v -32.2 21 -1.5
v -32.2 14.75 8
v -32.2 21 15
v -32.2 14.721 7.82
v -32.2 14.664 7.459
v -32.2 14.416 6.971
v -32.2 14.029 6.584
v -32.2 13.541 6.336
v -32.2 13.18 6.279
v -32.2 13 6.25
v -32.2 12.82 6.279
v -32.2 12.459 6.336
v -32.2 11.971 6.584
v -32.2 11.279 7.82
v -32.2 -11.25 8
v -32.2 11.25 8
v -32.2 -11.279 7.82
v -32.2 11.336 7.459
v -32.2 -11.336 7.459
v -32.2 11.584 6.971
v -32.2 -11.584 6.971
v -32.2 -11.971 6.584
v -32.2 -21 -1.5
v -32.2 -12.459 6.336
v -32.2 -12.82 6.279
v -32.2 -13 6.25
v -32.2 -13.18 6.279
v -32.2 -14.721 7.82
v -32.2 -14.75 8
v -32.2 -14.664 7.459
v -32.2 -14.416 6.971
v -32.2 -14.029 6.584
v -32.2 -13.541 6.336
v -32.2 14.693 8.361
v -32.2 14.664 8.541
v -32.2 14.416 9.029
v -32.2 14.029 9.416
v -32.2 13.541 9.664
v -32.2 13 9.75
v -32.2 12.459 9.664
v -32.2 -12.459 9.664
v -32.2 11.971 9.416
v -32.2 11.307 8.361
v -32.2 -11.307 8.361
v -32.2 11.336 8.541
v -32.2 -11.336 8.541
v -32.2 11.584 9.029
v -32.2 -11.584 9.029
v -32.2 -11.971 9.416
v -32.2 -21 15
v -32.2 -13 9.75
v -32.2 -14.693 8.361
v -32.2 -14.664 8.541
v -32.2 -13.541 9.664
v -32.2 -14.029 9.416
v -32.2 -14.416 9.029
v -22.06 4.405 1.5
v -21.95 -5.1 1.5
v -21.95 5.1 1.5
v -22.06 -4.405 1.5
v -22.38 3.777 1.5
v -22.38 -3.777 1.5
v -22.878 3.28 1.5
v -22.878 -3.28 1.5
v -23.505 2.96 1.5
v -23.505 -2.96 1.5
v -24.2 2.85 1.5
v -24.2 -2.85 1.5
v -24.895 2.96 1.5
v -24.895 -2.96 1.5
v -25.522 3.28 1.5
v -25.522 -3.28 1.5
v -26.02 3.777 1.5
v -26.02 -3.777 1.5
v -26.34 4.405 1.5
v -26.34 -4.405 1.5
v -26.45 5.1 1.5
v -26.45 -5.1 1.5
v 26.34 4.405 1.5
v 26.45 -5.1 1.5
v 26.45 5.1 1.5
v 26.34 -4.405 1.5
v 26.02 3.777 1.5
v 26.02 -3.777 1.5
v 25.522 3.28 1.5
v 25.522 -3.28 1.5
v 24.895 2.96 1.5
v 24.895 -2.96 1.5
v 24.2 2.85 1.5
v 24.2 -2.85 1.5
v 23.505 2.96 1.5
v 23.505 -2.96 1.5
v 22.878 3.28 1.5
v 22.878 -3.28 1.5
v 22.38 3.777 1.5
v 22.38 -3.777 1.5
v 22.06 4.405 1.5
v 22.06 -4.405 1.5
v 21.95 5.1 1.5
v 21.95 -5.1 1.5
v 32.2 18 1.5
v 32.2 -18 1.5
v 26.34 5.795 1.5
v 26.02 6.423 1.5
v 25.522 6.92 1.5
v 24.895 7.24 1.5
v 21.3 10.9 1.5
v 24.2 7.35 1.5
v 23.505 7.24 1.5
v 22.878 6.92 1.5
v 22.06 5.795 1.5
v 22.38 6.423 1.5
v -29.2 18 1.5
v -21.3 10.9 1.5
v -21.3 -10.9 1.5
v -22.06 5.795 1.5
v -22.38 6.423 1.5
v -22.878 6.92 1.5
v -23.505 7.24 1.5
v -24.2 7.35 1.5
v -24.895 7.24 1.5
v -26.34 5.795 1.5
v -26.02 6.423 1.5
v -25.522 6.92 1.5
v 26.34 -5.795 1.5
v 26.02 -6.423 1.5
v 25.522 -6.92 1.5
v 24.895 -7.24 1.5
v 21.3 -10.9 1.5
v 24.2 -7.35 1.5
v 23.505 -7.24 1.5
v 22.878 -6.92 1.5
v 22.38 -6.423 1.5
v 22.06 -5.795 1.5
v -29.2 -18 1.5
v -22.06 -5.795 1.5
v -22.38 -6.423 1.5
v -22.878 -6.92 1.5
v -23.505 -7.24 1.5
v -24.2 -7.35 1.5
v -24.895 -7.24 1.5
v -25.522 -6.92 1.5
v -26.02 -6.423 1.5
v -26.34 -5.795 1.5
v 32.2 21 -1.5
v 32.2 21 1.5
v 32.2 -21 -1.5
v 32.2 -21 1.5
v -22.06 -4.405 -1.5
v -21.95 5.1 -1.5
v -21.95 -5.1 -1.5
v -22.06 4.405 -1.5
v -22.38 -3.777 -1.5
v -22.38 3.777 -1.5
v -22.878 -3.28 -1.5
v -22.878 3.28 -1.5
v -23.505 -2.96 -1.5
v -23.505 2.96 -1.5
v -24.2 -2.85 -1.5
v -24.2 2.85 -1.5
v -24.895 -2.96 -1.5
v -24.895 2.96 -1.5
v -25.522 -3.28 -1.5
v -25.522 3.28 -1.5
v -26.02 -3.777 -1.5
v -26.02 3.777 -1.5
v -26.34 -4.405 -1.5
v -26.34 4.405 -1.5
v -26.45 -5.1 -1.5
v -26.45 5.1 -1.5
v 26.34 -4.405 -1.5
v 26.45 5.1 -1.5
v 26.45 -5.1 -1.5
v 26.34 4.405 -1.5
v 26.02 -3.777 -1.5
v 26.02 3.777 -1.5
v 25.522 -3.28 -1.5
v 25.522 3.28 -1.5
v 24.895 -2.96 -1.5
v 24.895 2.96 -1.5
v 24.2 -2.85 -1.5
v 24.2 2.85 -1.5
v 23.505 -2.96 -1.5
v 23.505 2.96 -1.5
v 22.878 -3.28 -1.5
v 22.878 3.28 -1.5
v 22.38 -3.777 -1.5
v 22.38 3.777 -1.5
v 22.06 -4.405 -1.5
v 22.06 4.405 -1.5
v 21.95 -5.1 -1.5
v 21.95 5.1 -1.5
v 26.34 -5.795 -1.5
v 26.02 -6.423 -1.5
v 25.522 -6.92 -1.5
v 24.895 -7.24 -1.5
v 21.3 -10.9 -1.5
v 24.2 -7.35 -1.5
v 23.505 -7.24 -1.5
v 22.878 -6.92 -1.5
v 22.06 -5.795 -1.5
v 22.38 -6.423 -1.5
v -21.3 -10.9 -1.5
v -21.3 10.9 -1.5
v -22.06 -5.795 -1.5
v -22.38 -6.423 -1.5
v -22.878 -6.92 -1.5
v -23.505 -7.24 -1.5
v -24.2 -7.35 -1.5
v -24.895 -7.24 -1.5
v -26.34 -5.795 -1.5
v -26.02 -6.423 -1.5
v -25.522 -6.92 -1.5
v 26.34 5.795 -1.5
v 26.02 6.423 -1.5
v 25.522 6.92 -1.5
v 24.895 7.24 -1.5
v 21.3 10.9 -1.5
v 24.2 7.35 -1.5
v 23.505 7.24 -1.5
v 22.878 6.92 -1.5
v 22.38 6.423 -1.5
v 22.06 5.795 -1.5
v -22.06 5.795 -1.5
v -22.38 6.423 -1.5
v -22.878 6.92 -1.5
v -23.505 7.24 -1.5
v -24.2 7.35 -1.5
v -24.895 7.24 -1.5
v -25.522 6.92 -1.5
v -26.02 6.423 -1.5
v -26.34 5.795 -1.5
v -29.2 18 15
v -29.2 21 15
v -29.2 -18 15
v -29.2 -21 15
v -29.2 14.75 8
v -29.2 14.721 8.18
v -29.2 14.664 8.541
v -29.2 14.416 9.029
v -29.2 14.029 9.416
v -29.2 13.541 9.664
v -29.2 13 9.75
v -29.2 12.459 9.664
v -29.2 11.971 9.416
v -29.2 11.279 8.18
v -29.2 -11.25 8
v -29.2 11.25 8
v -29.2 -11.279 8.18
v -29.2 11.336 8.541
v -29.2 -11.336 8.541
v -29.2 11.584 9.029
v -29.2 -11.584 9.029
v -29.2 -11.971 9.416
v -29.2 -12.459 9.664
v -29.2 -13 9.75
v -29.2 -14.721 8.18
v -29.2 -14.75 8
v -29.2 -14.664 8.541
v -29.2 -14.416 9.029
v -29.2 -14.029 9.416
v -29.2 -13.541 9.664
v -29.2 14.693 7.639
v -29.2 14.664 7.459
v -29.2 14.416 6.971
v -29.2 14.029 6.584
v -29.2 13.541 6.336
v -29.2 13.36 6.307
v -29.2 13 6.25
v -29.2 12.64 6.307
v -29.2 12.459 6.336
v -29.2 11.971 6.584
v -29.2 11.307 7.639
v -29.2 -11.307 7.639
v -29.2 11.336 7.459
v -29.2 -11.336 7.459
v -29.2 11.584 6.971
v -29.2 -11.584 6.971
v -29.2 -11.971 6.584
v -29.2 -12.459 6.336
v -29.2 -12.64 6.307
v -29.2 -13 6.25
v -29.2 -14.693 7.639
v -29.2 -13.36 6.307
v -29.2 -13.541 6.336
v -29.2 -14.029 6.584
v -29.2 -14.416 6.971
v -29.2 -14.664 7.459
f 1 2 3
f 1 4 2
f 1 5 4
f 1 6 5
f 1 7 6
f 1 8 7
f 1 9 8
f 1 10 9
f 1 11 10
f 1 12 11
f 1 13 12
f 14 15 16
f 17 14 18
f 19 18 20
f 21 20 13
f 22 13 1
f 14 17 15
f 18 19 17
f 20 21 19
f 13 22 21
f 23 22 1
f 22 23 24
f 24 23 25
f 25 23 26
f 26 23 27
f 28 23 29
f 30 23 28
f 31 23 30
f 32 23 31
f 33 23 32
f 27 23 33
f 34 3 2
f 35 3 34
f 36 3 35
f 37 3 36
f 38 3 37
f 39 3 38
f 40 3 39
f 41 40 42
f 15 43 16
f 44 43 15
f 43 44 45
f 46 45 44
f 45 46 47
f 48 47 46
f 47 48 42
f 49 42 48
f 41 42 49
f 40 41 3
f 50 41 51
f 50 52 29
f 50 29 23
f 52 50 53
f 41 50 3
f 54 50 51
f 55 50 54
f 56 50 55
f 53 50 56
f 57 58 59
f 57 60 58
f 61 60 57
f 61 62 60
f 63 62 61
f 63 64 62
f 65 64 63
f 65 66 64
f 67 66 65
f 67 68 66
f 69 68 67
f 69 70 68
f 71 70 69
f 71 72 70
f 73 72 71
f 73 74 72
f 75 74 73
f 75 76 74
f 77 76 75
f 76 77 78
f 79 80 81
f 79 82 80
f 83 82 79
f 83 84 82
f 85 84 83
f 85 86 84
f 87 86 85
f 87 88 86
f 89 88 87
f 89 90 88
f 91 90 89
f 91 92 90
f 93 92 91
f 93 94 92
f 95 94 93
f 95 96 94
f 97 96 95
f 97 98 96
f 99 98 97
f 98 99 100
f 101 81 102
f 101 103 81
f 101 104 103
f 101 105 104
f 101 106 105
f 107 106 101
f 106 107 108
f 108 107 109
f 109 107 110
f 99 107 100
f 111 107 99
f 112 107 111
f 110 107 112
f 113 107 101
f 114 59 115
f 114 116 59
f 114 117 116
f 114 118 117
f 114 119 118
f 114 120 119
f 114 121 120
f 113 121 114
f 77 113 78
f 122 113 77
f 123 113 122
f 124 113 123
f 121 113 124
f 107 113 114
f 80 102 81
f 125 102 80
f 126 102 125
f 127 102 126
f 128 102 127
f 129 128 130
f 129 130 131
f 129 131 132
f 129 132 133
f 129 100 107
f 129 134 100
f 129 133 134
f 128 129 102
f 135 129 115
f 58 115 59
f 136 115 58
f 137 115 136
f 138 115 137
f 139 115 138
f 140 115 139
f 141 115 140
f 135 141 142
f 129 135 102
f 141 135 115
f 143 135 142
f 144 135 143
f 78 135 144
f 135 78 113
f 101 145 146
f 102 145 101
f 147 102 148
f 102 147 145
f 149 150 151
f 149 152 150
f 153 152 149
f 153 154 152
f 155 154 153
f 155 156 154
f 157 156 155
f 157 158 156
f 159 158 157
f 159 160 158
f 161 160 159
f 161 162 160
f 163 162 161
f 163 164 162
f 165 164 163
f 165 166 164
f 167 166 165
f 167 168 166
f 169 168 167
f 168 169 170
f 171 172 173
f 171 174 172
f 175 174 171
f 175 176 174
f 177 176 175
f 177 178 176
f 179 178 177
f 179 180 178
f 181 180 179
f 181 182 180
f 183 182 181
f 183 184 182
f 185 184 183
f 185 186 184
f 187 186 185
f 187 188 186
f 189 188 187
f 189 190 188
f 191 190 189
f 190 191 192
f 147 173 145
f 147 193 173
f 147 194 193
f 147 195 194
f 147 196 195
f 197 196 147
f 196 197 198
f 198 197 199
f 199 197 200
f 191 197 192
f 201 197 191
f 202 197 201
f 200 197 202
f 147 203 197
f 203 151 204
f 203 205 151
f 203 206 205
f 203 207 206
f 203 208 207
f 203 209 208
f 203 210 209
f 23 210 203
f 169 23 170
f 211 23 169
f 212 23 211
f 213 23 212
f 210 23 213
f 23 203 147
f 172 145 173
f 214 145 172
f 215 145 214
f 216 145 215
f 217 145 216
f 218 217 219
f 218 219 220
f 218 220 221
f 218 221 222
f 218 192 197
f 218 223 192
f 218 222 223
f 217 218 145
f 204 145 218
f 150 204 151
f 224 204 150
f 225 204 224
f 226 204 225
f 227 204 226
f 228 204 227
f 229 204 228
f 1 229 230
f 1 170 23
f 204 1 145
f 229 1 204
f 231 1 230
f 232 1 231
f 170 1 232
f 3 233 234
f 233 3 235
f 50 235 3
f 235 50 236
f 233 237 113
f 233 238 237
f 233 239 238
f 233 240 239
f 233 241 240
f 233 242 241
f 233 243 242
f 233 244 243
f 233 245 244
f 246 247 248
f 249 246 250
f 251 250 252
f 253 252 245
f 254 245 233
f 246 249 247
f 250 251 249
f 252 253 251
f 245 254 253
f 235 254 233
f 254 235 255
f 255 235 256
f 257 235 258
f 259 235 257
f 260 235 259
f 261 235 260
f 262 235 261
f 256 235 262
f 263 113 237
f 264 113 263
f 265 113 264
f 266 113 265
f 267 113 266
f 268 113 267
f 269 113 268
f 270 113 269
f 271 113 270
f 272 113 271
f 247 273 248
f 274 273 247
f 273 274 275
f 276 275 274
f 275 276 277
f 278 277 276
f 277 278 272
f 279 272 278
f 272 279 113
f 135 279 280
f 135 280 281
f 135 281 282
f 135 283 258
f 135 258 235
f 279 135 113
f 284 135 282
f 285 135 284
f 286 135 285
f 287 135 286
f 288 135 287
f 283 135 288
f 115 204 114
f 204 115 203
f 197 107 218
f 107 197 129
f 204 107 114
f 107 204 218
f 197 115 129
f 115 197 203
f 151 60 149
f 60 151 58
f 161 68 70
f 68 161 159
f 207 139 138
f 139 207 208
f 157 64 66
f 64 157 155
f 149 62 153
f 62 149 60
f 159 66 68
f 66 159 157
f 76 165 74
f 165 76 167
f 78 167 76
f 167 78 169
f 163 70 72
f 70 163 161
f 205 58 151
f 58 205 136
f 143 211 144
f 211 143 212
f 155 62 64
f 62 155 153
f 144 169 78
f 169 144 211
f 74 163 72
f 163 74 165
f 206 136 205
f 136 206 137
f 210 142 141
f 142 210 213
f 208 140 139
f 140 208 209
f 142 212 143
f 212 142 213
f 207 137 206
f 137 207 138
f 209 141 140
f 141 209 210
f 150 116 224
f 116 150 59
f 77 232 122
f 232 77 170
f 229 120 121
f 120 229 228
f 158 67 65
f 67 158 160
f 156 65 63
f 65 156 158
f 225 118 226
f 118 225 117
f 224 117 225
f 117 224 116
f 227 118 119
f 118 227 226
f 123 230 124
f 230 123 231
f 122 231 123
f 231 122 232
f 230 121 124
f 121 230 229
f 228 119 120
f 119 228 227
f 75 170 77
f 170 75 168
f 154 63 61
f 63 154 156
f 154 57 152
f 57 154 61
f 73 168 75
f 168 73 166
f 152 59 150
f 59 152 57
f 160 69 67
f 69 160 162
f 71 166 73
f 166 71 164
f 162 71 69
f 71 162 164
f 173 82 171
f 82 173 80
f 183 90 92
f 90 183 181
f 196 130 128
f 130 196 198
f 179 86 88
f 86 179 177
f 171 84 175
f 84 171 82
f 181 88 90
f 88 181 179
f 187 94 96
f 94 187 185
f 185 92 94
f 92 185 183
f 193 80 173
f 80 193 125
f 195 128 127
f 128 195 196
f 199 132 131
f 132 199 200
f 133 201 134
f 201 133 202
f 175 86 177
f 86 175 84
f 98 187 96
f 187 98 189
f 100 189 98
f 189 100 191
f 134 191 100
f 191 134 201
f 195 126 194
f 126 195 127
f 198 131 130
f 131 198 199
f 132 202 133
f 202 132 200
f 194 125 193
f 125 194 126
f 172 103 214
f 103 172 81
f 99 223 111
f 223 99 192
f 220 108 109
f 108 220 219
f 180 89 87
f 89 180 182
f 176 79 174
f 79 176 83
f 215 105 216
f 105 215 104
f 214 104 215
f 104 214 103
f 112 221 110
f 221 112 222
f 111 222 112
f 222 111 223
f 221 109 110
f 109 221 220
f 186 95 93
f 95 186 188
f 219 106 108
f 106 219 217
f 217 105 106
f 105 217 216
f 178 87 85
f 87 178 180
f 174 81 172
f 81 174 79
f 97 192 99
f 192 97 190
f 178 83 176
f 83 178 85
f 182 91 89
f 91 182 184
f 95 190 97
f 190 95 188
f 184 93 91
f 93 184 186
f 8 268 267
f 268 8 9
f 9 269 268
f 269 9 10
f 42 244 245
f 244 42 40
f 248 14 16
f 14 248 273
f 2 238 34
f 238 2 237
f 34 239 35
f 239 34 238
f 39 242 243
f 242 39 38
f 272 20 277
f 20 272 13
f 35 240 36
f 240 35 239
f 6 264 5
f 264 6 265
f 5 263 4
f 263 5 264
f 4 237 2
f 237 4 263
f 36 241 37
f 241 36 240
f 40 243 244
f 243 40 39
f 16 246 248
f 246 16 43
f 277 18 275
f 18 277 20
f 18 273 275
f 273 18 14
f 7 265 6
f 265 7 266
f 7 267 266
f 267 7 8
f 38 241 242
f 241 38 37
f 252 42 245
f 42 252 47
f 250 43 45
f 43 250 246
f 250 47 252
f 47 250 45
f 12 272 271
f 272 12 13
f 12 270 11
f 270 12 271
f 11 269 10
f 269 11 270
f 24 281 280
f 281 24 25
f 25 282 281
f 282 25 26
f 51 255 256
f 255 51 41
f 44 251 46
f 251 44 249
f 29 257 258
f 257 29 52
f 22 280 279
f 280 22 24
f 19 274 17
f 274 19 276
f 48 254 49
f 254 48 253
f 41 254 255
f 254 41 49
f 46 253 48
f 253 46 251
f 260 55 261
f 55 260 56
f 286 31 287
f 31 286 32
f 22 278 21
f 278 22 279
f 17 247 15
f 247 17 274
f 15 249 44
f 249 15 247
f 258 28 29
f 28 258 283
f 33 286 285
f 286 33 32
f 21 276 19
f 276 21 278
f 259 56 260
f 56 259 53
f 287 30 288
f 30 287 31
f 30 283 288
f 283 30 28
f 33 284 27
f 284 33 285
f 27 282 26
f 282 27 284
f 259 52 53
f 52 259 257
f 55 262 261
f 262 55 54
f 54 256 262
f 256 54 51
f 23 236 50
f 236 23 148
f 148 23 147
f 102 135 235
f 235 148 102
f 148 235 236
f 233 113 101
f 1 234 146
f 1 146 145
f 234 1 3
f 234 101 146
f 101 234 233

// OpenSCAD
diam_M3=3.5;
servo_t=19.8;
servo_w1=40.6;
servo_w2=48.4;
servo_w3=53.4;
servo_d=17.3;
servo_a=20;
servo_fixingscrew_diam=4.5;
servo_fixingscrew_distance=10.2;
thickness=3;
bigger=5;
width=36+thickness;

difference()
{
union(){    
cube([servo_w3+thickness*2+bigger,width,thickness],center=true);
translate([-(servo_w3+thickness*2+bigger)/2,-width/2,0])cube([thickness,width,15]);    
}
cube([servo_w1+2,servo_t+2,thickness*2],center=true);    
//servo screw holes
translate([-servo_w2/2,-servo_fixingscrew_distance/2,0])cylinder(d=servo_fixingscrew_diam,h=100,$fn=20,center=true);
translate([-servo_w2/2,+servo_fixingscrew_distance/2,0])cylinder(d=servo_fixingscrew_diam,h=100,$fn=20,center=true);    
translate([servo_w2/2,-servo_fixingscrew_distance/2,0])cylinder(d=servo_fixingscrew_diam,h=100,$fn=20,center=true);
translate([servo_w2/2,+servo_fixingscrew_distance/2,0])cylinder(d=servo_fixingscrew_diam,h=100,$fn=20,center=true);        
//holes for arm attachment
translate([-(servo_w3+thickness+bigger)/2,8+5,8])rotate([0,90,0]) cylinder(r=diam_M3/2,h=thickness*3,center=true,$fn=20);    
translate([-(servo_w3+thickness+bigger)/2,-8-5,8])rotate([0,90,0]) cylinder(r=diam_M3/2,h=thickness*3,center=true,$fn=20);  
}

translate([0,-width/2,0])hull() {
translate([-(servo_w3+thickness*2+bigger)/2,-thickness/2,0])cube([thickness,thickness,15]); 
cube([servo_w3+thickness*2+bigger,thickness,thickness],center=true);    
}
translate([0,width/2,0])hull() {
translate([-(servo_w3+thickness*2+bigger)/2,-thickness/2,0])cube([thickness,thickness,15]); 
cube([servo_w3+thickness*2+bigger,thickness,thickness],center=true);    
}
